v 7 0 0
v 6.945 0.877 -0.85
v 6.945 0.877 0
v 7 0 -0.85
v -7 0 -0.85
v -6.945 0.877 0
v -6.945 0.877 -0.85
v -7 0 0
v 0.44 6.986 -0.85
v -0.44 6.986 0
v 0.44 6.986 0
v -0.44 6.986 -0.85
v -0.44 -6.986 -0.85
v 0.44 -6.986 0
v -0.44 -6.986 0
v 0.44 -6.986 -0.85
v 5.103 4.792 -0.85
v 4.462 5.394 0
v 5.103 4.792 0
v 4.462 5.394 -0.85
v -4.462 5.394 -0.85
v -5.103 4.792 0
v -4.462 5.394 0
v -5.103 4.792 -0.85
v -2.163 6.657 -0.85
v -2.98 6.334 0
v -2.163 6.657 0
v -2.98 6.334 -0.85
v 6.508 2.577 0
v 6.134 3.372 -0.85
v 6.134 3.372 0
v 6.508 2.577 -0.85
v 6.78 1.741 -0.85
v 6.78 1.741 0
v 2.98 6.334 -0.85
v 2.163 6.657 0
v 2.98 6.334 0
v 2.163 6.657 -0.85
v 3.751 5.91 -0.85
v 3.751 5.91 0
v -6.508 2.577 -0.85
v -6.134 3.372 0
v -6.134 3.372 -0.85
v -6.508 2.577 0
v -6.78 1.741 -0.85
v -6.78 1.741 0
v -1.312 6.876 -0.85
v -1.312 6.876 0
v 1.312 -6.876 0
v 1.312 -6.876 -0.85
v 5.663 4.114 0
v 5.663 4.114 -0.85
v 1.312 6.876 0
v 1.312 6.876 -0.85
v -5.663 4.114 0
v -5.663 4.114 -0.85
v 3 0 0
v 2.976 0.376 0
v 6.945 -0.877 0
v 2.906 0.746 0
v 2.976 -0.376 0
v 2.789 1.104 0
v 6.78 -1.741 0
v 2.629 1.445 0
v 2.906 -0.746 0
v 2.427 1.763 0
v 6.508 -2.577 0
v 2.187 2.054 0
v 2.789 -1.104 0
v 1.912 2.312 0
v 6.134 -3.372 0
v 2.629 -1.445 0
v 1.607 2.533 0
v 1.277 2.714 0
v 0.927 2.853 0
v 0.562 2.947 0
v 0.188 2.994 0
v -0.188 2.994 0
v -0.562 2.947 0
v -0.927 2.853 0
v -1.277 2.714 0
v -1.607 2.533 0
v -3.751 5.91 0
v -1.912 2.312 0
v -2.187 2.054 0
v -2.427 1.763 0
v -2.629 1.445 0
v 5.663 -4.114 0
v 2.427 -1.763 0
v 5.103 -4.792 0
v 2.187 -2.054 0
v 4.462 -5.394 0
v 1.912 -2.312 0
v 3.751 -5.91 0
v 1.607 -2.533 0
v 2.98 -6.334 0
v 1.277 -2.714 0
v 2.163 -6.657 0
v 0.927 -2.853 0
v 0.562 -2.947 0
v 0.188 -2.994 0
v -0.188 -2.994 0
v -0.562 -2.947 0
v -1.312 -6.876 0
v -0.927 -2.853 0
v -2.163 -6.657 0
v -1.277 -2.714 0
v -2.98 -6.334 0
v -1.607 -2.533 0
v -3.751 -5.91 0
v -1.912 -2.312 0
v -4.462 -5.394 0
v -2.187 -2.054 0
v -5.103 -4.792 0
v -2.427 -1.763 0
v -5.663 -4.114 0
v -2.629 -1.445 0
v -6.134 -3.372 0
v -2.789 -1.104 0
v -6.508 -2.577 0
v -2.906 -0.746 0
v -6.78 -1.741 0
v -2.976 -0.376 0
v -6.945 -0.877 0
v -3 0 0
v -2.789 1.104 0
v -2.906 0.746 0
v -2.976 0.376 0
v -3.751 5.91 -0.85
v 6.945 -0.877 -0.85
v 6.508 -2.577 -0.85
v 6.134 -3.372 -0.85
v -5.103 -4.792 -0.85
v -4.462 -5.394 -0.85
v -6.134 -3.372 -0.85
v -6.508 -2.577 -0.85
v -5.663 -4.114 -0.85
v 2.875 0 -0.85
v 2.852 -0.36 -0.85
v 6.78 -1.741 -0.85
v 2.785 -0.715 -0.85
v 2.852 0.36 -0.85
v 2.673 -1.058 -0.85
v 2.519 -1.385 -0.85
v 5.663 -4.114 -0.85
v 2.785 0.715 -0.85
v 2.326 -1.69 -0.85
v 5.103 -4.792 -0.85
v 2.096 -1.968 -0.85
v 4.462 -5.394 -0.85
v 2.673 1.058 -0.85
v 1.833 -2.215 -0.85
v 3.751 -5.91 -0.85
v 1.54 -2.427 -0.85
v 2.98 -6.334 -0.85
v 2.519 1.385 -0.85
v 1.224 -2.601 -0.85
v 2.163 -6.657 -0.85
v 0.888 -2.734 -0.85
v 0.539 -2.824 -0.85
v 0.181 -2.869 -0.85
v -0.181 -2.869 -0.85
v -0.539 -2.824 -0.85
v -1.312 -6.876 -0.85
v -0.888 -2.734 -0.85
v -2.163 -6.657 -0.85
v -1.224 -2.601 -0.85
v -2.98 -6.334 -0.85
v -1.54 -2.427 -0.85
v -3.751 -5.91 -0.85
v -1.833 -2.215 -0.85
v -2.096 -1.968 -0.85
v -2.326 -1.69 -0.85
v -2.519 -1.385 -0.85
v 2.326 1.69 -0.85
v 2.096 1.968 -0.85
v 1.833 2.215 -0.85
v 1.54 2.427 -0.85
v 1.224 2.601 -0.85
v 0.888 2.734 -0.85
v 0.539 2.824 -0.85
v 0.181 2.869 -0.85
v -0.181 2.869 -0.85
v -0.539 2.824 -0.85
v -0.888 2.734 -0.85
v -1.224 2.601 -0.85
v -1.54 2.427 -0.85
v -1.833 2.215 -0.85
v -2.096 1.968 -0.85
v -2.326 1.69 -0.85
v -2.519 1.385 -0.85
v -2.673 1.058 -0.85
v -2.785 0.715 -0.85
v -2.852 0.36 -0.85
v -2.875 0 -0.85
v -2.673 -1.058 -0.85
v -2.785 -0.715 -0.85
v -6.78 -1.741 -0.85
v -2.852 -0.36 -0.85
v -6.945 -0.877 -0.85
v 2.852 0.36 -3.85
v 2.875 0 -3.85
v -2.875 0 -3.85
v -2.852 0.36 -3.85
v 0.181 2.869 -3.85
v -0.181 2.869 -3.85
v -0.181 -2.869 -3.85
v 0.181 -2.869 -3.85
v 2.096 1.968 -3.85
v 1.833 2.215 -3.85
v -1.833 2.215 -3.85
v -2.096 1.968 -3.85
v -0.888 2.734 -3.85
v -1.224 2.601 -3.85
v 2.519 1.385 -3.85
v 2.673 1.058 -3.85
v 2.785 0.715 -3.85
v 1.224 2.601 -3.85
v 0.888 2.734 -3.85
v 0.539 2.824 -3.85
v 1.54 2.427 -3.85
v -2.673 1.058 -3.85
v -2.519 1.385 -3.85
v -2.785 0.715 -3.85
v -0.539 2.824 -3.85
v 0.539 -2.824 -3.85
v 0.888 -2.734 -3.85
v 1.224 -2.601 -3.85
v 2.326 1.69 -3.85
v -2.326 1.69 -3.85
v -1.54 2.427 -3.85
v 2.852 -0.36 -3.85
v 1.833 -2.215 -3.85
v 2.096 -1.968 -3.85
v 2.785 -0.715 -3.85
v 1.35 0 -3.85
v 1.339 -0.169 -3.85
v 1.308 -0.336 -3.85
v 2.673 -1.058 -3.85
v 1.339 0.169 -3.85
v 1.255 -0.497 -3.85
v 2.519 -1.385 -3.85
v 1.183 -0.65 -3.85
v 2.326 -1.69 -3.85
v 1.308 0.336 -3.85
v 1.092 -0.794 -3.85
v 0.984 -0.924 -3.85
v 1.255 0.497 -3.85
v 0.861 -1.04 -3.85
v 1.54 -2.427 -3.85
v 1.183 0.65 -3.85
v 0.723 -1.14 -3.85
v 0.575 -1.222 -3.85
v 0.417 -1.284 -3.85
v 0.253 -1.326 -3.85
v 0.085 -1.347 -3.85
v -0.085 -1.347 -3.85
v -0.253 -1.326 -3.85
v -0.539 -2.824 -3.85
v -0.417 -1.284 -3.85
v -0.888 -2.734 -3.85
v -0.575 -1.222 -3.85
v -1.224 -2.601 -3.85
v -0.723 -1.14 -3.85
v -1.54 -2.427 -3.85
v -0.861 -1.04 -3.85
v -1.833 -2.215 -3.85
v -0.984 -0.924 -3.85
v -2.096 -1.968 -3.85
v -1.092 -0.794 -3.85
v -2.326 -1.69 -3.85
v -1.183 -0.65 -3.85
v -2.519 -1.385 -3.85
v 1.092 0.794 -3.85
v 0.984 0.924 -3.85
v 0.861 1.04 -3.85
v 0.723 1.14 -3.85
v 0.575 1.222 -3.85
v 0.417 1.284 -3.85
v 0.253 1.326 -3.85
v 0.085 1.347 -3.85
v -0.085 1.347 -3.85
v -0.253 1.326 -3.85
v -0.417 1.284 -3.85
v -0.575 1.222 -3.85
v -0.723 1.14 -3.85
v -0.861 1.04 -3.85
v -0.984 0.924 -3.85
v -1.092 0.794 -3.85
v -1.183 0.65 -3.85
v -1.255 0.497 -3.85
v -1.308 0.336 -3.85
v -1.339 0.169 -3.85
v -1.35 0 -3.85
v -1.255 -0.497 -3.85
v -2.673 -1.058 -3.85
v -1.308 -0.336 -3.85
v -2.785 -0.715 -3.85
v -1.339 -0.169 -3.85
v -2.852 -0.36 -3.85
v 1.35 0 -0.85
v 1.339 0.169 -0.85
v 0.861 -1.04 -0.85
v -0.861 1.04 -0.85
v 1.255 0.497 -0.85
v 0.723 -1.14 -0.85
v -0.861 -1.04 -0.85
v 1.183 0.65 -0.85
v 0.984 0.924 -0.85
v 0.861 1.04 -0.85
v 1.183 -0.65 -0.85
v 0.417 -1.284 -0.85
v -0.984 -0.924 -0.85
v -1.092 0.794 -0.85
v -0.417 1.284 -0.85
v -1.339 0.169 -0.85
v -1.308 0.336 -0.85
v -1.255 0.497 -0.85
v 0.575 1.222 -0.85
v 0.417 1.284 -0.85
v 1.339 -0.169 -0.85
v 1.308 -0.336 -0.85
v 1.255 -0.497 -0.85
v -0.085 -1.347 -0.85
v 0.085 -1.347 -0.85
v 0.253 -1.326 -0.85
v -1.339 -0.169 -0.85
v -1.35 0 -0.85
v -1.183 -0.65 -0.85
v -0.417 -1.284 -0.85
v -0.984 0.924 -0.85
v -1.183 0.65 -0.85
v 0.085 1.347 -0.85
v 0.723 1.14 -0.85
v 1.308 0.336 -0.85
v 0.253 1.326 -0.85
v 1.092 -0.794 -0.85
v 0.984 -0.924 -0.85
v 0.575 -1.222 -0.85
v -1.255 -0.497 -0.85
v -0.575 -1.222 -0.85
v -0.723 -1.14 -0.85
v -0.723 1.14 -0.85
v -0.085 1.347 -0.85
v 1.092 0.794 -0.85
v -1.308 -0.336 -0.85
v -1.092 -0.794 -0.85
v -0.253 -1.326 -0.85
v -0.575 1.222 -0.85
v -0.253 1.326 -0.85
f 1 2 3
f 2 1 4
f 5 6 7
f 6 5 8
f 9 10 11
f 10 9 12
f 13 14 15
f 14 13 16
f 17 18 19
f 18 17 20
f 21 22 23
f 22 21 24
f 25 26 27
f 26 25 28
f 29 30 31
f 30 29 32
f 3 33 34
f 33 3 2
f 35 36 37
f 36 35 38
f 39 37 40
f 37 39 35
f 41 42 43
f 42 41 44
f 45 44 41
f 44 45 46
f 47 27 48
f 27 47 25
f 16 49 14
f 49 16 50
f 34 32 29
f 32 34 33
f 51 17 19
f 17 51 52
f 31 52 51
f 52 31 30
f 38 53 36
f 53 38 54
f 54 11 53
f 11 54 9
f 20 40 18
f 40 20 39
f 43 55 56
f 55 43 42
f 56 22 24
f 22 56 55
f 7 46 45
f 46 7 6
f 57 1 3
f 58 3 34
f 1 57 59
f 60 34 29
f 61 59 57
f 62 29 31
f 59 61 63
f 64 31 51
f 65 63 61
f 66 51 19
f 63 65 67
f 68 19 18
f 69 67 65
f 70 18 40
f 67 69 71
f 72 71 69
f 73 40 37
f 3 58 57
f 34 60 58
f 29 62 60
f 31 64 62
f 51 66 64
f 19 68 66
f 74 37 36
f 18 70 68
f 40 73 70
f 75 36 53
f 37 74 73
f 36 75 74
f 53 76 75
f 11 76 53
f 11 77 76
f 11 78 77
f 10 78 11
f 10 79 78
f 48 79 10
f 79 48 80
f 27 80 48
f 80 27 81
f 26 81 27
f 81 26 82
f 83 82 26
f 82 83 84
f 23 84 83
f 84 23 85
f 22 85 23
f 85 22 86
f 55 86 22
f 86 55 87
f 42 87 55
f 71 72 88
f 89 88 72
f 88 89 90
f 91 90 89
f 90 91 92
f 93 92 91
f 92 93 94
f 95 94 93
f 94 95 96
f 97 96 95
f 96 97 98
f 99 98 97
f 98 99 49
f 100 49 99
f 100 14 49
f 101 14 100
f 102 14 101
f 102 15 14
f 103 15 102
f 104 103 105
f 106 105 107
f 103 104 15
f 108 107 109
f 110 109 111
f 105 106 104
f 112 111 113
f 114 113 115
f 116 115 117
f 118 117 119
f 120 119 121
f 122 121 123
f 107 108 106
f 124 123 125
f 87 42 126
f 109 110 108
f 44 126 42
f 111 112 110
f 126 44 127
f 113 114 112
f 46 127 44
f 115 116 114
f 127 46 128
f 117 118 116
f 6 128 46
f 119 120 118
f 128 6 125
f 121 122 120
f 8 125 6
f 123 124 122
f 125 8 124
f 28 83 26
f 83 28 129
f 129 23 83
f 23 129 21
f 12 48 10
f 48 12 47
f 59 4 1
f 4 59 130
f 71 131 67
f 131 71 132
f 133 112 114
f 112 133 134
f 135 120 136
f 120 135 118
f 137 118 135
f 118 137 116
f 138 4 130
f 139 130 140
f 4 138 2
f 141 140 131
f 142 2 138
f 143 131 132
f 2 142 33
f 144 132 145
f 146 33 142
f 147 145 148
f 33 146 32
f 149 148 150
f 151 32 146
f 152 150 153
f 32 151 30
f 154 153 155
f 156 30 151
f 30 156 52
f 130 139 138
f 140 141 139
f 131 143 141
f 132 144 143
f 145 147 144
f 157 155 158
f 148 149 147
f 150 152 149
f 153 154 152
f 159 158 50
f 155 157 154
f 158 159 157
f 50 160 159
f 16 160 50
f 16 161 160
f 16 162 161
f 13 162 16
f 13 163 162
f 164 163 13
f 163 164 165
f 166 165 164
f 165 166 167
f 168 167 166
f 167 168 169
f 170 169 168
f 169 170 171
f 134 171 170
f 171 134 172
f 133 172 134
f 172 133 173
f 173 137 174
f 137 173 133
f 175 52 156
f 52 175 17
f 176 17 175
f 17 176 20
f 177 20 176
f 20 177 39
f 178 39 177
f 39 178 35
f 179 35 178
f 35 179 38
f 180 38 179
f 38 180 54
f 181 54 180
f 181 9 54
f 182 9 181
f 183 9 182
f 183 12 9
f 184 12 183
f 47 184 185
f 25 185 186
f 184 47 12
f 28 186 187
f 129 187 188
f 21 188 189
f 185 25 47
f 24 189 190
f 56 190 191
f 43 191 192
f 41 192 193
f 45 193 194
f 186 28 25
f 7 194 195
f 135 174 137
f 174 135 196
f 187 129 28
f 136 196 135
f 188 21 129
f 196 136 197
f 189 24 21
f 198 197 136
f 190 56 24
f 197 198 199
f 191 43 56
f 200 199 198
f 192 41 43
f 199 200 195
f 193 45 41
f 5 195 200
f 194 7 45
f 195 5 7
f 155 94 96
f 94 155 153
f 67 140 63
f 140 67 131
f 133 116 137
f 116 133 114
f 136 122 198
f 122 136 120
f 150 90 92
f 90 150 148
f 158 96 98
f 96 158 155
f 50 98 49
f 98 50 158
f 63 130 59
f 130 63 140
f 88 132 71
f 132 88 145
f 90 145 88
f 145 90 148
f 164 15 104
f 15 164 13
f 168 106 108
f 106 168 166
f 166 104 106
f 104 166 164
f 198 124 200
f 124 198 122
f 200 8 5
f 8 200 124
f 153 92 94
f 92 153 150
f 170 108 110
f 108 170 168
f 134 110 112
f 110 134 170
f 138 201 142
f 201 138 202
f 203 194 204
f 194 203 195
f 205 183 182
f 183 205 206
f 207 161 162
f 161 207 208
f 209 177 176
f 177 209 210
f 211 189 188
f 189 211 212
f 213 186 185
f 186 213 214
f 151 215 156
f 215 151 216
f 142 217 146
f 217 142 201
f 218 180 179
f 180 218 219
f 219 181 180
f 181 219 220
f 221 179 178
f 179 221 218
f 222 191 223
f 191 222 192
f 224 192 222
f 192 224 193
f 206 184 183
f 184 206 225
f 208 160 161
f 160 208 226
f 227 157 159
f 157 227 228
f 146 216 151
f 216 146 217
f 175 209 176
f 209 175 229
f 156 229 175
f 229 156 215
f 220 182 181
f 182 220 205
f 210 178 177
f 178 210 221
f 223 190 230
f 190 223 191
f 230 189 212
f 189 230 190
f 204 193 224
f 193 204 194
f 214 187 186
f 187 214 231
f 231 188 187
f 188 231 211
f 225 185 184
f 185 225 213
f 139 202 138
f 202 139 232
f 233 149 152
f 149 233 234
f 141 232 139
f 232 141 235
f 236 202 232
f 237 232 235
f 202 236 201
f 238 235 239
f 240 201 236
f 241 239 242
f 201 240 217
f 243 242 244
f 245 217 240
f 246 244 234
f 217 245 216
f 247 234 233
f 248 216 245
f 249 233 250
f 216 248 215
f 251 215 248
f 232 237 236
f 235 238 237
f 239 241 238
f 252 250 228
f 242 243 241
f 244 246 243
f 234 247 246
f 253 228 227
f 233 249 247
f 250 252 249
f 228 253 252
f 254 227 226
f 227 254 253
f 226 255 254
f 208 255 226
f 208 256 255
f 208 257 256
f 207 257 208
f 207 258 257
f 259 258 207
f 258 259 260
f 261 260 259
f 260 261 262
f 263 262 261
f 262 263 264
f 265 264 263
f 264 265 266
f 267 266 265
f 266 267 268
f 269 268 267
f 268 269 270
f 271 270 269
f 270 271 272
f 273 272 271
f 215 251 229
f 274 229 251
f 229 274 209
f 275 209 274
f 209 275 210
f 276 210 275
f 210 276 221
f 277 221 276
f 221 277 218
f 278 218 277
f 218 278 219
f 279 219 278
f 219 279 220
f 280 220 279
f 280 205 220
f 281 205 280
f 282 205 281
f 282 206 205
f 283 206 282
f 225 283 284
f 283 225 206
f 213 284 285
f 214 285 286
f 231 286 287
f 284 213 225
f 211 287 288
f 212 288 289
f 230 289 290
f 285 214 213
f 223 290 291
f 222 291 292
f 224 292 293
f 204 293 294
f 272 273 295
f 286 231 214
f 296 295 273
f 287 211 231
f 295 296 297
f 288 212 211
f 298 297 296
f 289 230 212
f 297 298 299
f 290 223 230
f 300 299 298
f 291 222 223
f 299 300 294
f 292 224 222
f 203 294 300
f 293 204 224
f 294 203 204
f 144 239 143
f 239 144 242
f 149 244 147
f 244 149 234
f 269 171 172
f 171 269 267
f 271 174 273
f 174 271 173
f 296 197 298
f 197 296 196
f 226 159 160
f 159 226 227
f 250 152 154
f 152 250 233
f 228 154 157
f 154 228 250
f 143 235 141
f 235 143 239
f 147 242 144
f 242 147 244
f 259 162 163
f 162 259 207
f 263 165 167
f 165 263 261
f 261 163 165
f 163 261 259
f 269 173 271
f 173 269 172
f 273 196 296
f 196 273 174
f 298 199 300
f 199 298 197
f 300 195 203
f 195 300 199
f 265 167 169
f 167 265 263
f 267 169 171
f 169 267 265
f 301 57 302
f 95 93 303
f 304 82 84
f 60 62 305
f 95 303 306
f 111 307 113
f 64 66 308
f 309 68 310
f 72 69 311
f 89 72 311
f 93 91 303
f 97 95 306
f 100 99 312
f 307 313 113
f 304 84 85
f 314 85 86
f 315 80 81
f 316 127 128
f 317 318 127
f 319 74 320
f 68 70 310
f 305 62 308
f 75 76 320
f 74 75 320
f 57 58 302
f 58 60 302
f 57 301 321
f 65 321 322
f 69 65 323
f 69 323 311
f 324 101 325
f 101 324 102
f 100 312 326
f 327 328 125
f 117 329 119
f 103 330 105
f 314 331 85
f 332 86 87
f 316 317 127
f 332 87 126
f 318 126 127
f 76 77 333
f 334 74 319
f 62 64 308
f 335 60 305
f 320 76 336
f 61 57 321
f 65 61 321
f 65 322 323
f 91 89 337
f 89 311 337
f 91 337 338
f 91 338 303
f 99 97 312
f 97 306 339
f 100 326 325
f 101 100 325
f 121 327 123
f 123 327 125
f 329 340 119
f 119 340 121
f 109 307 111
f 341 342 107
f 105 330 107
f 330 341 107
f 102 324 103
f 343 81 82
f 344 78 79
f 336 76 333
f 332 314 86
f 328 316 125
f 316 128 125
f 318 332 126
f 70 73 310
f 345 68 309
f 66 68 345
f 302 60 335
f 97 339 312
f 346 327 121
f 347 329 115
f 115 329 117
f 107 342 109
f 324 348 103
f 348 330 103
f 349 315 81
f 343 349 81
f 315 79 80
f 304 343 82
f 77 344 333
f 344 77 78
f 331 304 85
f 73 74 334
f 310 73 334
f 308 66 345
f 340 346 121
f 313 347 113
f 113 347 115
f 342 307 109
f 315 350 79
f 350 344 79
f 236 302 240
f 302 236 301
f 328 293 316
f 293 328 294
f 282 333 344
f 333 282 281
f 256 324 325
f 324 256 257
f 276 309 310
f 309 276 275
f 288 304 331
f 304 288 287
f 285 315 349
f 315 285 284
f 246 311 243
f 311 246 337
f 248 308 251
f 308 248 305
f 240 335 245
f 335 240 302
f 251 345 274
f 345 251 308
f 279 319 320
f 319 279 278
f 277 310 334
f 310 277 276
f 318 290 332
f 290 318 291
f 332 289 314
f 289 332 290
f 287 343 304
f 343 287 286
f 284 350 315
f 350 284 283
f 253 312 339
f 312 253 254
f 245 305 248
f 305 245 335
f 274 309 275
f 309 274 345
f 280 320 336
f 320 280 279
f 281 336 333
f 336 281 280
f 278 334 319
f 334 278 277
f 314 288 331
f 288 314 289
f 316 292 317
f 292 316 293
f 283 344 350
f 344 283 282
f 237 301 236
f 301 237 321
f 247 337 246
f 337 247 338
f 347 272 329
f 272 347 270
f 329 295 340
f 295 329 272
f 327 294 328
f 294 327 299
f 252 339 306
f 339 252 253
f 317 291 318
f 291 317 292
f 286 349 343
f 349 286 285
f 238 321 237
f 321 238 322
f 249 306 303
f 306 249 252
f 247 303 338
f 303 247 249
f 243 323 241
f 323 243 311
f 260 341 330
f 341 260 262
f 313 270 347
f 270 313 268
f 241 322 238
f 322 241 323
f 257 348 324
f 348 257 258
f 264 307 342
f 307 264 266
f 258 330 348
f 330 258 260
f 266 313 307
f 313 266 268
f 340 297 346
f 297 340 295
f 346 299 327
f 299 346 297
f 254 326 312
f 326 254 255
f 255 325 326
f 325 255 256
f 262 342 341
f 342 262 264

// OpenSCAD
$fn = 50;


difference() {
	union() {
		translate(v = [0, 0, -0.8500000000]) {
			cylinder(h = 0.8500000000, r = 7.0000000000);
		}
		#translate(v = [0, 0, -3.8500000000]) {
			cylinder(h = 3.8500000000, r = 2.8750000000);
		}
	}
	union() {
		translate(v = [0, 0, 0]) {
			rotate(a = [0, 0, 0]) {
				difference() {
					union() {
						translate(v = [0, 0, -3.8500000000]) {
							cylinder(h = 3.8500000000, r = 1.0000000000);
						}
						translate(v = [0, 0, -0.8500000000]) {
							cylinder(h = 0.8500000000, r1 = 1.3500000000, r2 = 3.0000000000);
						}
						translate(v = [0, 0, -3.8500000000]) {
							cylinder(h = 3.8500000000, r = 1.3500000000);
						}
						translate(v = [0, 0, -3.8500000000]) {
							cylinder(h = 3.8500000000, r = 1.0000000000);
						}
					}
					union();
				}
			}
		}
	}
}
